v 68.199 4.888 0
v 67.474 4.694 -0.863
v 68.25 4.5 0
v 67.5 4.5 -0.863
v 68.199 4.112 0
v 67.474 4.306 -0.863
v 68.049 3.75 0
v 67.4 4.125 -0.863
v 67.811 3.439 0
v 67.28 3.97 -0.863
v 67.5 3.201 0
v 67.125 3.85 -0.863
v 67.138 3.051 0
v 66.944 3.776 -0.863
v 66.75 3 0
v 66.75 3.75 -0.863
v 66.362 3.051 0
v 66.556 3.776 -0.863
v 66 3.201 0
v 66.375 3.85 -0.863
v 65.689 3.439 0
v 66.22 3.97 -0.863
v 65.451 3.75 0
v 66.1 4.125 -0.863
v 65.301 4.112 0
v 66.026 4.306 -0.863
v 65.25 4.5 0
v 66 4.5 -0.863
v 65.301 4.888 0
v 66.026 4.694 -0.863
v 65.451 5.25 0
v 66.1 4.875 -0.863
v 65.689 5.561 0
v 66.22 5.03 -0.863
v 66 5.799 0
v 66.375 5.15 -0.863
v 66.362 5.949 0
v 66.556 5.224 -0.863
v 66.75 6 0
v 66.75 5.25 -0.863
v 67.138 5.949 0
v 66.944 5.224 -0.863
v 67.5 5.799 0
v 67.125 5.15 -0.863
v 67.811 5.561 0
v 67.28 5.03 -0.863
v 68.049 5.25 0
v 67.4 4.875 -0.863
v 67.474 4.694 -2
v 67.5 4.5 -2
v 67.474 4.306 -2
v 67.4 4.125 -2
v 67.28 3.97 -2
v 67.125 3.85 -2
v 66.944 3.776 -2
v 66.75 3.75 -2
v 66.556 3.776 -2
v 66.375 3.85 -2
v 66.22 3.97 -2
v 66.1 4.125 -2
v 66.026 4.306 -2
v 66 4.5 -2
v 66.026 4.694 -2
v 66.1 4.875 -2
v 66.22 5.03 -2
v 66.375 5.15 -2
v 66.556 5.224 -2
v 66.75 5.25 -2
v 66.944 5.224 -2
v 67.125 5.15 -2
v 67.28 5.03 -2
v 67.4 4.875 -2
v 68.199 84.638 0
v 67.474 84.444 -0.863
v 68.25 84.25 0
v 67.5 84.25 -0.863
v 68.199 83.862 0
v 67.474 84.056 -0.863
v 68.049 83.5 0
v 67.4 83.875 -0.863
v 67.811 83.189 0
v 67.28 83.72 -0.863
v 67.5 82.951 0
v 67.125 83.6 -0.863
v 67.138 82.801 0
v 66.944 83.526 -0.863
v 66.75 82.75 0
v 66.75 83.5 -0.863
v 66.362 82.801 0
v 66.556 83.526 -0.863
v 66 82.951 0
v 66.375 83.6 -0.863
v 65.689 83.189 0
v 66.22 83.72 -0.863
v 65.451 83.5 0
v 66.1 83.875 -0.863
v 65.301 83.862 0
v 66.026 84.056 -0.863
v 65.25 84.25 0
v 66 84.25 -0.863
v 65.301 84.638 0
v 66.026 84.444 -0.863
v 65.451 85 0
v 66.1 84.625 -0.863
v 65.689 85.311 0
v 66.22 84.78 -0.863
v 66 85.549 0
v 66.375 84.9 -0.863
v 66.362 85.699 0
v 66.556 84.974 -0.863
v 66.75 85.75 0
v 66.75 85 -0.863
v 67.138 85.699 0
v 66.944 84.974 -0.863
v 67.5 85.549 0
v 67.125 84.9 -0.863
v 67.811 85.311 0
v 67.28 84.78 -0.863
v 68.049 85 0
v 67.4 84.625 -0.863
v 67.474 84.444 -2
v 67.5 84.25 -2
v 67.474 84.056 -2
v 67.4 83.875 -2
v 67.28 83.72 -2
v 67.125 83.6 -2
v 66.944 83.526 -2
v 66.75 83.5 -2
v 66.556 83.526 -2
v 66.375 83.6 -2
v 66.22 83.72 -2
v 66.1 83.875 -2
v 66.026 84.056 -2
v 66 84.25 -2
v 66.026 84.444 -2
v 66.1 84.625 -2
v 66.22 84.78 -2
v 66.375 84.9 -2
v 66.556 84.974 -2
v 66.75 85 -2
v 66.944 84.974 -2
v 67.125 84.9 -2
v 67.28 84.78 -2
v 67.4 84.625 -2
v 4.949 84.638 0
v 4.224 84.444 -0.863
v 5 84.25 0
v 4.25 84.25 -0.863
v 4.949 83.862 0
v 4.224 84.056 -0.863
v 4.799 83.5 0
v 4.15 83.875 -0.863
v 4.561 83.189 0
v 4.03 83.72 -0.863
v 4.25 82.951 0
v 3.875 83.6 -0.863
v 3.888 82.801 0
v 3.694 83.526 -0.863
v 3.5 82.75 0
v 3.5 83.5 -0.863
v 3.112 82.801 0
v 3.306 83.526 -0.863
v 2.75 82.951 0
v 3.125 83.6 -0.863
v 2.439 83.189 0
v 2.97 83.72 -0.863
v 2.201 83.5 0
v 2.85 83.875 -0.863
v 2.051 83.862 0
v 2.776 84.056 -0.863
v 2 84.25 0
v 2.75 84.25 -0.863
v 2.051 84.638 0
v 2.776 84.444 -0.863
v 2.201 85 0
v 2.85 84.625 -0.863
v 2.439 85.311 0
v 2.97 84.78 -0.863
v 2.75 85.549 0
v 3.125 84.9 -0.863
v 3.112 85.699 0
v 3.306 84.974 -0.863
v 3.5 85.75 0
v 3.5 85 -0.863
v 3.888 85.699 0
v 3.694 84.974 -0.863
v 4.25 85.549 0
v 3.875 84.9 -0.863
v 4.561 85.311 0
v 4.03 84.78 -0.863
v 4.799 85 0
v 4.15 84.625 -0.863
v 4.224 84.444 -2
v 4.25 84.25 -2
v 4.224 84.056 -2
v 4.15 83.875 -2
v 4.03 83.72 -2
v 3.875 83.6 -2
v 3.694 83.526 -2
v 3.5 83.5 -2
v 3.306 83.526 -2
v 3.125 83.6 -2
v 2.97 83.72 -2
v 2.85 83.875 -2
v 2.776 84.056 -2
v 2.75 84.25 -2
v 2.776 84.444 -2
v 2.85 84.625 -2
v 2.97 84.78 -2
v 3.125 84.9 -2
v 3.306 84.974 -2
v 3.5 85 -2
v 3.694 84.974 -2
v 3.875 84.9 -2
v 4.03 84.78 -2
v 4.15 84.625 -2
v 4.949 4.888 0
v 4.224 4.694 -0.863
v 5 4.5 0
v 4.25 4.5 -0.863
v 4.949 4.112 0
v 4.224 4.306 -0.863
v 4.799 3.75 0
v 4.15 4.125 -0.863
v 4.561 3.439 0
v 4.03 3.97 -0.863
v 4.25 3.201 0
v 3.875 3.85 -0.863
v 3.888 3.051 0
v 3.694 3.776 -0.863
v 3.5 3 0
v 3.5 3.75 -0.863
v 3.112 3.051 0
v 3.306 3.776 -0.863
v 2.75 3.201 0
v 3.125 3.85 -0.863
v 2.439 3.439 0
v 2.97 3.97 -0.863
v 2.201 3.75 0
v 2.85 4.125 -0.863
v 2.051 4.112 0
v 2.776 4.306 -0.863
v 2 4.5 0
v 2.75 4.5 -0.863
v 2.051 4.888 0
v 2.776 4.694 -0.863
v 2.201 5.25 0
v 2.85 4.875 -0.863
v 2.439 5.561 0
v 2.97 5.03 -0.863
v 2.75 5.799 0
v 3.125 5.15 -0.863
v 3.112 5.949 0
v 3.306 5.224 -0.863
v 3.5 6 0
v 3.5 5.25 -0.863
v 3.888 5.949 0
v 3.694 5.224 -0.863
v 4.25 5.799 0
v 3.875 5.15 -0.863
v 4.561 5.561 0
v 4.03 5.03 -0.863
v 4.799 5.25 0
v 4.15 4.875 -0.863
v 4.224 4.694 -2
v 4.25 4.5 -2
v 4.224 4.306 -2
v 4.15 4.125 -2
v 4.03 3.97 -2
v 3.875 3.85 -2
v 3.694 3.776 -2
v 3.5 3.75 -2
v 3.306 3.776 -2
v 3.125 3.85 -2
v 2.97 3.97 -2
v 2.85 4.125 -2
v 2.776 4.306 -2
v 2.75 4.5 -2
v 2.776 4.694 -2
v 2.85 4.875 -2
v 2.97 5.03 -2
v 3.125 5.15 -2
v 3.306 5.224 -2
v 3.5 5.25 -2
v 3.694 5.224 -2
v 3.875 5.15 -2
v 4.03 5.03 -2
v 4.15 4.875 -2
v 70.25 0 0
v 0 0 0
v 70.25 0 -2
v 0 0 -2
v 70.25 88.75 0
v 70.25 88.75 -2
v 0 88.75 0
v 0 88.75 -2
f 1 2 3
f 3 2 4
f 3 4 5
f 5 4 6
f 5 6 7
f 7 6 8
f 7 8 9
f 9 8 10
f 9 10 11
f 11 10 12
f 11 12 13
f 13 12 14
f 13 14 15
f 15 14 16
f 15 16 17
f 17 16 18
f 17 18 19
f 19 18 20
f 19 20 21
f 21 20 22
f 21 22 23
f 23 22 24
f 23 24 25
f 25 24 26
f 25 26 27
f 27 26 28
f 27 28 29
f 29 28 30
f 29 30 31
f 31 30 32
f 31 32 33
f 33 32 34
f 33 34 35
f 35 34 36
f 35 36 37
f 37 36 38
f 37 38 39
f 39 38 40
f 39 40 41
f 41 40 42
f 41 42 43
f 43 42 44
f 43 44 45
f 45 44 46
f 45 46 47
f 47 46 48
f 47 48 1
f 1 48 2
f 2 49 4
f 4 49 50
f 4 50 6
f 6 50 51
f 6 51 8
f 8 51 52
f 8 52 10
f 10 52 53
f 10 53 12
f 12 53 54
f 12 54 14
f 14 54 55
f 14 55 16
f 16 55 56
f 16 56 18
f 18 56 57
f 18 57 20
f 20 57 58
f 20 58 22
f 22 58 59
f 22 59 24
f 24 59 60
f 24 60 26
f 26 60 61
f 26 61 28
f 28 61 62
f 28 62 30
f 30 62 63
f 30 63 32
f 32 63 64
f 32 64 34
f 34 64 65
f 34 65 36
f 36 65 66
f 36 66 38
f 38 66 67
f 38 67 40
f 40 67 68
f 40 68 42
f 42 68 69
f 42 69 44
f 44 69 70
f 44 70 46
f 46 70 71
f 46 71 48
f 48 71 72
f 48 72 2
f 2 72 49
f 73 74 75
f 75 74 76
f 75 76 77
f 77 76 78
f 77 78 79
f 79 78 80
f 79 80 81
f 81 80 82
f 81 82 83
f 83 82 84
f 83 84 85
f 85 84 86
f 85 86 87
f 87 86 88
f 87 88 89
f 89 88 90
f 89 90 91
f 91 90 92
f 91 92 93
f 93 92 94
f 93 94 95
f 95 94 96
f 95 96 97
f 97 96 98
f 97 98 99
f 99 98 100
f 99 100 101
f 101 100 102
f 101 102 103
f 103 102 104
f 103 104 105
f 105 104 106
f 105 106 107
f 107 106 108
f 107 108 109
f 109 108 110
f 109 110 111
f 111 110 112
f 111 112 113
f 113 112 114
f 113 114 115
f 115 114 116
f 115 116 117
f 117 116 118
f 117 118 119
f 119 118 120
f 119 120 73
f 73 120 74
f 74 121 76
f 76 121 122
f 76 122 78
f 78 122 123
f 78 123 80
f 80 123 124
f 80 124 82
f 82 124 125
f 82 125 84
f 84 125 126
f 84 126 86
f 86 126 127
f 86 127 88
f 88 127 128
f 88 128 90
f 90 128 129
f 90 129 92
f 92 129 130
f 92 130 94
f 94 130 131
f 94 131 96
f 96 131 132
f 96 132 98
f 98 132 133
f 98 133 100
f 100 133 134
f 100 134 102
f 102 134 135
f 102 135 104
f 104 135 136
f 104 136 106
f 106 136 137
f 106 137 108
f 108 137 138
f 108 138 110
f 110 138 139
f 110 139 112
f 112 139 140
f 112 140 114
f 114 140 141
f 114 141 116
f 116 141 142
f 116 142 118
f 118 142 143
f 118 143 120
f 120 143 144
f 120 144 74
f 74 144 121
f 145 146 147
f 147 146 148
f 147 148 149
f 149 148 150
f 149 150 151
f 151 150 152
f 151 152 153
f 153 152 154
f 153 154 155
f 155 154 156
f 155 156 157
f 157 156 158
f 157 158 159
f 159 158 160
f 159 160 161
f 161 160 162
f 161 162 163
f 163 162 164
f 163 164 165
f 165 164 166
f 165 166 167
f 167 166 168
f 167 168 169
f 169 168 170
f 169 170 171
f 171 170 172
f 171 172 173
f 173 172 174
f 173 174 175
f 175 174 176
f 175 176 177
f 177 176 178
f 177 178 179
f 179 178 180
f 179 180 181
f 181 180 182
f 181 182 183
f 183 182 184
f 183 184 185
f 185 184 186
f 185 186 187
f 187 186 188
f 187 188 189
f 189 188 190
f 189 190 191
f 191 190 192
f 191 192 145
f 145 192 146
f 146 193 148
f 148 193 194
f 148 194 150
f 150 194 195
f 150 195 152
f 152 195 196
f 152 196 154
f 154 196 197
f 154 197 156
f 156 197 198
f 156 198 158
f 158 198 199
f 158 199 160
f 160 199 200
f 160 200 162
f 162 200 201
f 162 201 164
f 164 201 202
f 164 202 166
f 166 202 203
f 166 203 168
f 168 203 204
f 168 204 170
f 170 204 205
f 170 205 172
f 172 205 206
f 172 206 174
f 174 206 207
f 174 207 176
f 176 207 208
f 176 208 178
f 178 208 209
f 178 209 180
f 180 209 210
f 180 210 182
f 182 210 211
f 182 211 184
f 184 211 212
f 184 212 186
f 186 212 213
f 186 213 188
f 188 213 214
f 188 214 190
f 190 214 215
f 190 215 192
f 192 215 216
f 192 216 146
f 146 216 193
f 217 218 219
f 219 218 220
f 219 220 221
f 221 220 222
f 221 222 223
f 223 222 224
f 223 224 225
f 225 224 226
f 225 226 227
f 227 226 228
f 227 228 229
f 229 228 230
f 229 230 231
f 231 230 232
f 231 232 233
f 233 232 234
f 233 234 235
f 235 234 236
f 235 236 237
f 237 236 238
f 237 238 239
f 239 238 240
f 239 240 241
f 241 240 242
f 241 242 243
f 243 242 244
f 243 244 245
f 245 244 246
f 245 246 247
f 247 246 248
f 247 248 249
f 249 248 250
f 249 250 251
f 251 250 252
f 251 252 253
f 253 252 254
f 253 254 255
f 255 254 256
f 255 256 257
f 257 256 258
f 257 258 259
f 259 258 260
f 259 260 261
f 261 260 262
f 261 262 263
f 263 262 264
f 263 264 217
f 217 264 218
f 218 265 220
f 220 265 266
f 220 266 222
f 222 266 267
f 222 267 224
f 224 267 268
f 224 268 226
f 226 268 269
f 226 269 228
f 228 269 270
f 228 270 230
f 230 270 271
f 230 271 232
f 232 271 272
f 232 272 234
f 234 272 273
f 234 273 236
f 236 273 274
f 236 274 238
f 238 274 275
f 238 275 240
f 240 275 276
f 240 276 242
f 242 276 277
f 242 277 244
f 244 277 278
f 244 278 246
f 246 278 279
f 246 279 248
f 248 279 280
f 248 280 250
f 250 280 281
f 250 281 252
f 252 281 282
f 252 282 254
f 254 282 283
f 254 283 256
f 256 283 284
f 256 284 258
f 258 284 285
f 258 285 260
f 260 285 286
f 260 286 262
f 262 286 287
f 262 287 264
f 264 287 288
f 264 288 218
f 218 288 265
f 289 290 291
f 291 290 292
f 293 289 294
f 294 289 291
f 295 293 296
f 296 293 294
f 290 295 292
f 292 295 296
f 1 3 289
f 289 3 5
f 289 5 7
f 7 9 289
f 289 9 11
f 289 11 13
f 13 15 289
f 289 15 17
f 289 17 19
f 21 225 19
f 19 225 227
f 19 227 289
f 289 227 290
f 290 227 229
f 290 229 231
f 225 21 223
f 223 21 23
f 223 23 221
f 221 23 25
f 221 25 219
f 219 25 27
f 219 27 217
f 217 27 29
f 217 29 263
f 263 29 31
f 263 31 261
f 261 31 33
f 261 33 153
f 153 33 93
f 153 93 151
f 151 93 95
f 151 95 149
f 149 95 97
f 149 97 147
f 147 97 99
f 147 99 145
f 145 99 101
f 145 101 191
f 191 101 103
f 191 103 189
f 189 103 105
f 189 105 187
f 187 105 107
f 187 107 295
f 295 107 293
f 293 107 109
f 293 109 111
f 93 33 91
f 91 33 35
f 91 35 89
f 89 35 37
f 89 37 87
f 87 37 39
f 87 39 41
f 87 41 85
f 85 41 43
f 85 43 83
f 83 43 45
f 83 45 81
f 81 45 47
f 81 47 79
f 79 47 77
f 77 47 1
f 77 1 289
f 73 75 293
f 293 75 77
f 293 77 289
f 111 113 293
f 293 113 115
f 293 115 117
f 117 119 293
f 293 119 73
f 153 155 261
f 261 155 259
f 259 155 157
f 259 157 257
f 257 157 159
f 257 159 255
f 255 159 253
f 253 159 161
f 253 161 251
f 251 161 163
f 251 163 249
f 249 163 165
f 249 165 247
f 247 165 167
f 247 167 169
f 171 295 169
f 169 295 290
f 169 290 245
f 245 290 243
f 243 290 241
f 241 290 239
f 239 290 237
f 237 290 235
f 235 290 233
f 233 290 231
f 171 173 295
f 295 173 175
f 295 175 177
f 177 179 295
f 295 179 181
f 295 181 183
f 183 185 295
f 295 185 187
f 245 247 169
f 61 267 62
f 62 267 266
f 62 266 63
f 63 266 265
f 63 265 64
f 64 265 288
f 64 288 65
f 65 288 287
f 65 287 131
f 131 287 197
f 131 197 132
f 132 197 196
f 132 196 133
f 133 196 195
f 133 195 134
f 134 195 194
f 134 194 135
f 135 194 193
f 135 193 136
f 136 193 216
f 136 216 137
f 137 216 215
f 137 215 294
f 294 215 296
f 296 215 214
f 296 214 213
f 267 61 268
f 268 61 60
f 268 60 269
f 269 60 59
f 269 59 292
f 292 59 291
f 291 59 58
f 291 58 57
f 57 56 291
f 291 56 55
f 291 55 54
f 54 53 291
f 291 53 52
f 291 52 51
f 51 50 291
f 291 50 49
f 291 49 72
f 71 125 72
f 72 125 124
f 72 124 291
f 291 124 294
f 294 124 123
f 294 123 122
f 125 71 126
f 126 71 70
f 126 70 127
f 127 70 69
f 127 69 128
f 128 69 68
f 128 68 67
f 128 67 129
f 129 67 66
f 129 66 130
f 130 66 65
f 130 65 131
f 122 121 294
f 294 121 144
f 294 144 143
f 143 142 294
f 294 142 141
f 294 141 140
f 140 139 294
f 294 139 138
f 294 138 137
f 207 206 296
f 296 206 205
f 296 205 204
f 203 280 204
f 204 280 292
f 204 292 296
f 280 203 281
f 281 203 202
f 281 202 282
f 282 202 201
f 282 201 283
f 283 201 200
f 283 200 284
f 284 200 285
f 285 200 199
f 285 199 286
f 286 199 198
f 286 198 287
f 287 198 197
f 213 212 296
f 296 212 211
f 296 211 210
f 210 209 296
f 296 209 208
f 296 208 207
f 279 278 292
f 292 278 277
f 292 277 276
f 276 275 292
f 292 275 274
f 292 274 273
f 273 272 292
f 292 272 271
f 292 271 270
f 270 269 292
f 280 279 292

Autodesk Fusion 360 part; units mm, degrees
sketch "Sketch1" plane through (0, 0, 0) normal (0, 0, 1) x (1, 0, 0)
  line L0 (0, 0) -> (70.25, 0)
  line L1 (70.25, 0) -> (70.25, 88.75)
  line L2 (70.25, 88.75) -> (0, 88.75)
  line L3 (0, 88.75) -> (0, 0)
  point P0 (3.5, 84.25)
  point P1 (66.75, 84.25)
  point P2 (3.5, 4.5)
  point P3 (66.75, 4.5)
  dimension "d1" = 88.75
  dimension "d2" = 70.25
  dimension "d8" = 3.5
  dimension "d9" = 4.5
  dimension "d10" = 3.5
  dimension "d11" = 4.5
  dimension "d12" = 3.5
  dimension "d13" = 4.5
  dimension "d14" = 4.5
  dimension "d15" = 3.5
extrude "Extrude1" add sketch "Sketch1" against normal blind 2
hole "Hole1" at (66.75, 84.25, 0) at (3.5, 84.25, 0) at (66.75, 4.5, 0) at (3.5, 4.5, 0) direction (0, 0, -1) diameter 1.5 end through all countersink diameter 3 countersink angle 82
